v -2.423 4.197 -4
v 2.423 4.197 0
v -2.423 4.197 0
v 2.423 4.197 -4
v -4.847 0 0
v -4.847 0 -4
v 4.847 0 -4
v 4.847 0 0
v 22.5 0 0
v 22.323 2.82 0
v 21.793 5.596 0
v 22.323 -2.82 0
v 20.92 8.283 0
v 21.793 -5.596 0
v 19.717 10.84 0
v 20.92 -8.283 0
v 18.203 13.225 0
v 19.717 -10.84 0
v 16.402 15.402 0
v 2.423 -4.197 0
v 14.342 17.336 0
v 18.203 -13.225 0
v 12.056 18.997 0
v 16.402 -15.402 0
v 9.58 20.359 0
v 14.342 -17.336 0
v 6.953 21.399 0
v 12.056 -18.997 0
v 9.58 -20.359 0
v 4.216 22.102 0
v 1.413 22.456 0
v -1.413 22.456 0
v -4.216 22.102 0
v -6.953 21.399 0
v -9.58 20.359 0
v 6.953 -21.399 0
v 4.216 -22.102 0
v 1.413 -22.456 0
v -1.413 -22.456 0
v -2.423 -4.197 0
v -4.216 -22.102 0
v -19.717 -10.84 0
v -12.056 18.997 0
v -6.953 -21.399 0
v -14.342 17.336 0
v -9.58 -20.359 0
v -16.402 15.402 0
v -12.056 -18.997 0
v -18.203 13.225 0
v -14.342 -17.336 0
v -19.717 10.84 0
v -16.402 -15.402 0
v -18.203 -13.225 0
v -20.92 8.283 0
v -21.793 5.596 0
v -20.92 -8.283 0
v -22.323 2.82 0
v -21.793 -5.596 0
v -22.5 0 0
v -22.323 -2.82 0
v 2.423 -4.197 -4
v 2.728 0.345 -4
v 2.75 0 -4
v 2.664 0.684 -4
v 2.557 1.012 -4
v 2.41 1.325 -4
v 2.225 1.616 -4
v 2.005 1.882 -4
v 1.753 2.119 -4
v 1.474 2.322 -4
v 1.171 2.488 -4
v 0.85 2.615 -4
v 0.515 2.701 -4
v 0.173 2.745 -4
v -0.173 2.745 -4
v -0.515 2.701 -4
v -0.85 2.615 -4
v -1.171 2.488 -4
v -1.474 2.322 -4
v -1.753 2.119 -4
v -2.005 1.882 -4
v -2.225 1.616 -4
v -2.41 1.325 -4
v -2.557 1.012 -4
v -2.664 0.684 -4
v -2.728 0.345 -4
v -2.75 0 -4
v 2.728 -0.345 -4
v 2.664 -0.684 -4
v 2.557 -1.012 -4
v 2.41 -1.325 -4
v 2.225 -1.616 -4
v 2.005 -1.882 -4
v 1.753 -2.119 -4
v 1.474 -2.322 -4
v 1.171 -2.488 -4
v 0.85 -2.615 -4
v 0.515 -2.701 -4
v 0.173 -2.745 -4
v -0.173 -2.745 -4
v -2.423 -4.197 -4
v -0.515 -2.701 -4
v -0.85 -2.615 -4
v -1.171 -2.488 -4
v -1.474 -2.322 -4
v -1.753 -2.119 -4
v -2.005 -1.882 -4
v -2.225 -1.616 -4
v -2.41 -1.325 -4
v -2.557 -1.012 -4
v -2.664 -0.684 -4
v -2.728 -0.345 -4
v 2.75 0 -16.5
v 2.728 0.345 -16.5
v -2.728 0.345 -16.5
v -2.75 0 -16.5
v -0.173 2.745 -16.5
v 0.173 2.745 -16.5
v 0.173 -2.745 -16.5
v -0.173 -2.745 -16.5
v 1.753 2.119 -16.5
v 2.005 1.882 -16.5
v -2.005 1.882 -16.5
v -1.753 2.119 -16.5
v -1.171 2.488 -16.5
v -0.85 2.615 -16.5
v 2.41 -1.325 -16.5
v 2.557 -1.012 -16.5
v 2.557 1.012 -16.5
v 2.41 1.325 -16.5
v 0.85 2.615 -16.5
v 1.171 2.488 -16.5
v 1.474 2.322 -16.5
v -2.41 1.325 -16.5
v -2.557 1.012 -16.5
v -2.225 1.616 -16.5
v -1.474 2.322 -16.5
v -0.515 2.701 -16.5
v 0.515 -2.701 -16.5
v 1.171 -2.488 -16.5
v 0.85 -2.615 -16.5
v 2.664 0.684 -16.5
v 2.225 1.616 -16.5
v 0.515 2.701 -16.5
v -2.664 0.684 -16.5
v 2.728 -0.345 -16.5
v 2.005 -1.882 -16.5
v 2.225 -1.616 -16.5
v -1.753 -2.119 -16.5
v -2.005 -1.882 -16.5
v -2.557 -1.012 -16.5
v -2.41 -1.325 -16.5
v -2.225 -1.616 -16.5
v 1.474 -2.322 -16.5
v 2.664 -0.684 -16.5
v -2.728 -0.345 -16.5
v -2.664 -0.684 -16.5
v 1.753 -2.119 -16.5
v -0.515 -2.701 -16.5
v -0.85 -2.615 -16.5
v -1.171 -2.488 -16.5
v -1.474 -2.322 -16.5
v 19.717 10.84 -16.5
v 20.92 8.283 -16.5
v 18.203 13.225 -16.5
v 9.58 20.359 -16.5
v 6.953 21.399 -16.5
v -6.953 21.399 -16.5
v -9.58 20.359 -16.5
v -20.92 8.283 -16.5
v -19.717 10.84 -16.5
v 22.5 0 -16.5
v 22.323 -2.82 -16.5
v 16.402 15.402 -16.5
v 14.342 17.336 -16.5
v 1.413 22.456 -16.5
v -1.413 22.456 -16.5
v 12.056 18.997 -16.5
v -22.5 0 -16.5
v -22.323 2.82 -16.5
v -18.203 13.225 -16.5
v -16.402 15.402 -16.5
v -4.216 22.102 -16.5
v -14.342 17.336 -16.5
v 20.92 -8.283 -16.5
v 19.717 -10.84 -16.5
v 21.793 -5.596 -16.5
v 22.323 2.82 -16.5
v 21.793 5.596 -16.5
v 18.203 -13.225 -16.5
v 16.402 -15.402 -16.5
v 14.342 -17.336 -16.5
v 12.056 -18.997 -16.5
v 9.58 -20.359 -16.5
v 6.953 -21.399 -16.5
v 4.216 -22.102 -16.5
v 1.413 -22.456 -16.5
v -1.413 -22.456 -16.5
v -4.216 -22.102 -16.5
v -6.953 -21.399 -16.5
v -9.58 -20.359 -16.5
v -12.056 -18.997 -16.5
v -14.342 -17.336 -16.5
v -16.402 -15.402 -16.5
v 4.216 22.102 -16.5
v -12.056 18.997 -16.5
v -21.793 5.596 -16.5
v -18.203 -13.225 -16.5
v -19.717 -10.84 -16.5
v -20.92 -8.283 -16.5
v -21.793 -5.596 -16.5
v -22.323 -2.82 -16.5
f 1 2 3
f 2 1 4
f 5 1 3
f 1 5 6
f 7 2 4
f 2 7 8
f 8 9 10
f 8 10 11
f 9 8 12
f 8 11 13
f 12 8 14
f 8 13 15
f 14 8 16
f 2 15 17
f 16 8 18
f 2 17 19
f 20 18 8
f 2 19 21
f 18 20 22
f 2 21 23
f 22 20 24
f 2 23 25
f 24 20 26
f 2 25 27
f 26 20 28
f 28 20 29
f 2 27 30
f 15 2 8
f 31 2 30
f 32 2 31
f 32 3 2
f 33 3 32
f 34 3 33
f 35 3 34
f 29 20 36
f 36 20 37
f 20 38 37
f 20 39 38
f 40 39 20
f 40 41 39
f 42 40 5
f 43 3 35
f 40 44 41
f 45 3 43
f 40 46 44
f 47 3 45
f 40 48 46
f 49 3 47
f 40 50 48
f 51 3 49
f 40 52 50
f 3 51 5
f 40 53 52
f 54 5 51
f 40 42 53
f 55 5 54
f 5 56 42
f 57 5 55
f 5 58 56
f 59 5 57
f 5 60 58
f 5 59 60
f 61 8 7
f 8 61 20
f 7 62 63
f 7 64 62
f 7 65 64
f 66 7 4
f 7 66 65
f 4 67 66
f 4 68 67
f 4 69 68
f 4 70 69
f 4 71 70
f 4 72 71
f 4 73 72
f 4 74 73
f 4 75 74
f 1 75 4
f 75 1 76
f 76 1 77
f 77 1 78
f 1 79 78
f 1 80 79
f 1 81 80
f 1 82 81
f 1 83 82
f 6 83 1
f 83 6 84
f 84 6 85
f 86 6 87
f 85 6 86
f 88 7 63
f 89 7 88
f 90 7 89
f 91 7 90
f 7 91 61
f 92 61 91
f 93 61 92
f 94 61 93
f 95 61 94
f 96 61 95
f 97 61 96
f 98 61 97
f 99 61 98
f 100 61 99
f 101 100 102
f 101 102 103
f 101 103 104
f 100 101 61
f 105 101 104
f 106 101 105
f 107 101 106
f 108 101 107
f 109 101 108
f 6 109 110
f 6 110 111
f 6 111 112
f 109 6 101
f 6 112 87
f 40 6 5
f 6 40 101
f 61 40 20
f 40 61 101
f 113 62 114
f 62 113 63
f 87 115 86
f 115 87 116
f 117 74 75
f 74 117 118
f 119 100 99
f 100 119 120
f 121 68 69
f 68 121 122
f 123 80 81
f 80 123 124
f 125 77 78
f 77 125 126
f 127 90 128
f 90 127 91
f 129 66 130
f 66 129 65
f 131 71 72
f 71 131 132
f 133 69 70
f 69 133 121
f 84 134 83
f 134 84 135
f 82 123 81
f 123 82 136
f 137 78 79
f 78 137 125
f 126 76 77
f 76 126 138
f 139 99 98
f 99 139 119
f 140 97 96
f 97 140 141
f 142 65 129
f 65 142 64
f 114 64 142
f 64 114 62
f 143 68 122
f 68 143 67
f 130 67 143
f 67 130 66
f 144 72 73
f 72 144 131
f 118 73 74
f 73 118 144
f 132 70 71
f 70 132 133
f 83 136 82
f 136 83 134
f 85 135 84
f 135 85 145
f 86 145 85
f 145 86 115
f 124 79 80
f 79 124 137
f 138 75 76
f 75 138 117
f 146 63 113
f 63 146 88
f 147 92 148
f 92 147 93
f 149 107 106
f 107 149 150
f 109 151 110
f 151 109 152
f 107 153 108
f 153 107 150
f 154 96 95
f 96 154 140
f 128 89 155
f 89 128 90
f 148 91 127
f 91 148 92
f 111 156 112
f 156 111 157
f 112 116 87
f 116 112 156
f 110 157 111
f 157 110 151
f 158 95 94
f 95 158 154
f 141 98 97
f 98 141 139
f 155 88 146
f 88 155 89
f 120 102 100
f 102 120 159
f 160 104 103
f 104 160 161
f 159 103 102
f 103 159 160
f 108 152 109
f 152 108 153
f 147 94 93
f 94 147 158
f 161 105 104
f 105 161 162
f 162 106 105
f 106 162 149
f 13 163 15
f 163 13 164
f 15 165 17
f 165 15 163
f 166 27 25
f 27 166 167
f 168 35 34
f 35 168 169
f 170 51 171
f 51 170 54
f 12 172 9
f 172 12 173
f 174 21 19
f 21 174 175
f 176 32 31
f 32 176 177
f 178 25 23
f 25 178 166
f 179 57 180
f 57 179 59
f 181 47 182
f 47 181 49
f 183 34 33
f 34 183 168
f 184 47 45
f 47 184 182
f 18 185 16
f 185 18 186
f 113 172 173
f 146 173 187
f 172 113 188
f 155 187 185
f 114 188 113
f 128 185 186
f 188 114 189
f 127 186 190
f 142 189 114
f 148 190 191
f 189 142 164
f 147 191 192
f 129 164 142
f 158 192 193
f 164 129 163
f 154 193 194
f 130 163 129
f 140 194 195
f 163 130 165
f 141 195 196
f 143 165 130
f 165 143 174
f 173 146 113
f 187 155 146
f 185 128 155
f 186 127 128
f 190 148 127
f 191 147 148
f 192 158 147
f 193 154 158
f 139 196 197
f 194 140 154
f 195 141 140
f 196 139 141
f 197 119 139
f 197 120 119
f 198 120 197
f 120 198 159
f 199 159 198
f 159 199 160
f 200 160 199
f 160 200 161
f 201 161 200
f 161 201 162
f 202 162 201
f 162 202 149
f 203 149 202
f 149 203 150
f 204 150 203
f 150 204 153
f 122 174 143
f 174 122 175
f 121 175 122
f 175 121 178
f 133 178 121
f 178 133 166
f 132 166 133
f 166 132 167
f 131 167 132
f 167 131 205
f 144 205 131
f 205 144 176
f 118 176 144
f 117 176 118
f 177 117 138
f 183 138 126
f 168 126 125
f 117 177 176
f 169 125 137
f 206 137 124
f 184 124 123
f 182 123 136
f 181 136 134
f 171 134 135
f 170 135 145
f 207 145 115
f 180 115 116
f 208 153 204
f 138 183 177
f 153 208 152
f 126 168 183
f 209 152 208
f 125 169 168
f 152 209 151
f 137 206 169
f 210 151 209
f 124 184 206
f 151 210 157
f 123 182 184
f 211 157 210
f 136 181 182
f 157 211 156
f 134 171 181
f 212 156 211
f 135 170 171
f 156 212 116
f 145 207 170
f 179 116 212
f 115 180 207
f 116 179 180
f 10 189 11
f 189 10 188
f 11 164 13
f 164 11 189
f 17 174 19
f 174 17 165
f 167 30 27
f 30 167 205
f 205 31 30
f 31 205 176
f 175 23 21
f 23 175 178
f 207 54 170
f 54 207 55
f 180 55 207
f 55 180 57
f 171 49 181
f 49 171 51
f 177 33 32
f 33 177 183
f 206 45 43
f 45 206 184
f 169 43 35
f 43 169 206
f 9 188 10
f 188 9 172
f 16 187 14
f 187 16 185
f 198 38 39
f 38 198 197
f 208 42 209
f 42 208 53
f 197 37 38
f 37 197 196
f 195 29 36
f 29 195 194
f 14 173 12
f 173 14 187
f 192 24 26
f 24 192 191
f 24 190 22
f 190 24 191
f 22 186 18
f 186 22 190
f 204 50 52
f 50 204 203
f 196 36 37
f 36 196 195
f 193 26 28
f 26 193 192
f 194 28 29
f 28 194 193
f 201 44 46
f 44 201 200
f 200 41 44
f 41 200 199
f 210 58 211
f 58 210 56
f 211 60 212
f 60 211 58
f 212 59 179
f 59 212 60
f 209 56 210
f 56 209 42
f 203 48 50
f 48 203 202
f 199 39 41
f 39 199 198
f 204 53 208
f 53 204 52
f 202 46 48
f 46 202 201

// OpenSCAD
$fn = 50;


difference() {
	union() {
		translate(v = [0, 0, -16.5000000000]) {
			cylinder(h = 16.5000000000, r = 22.5000000000);
		}
	}
	union() {
		translate(v = [0, 0, 0]) {
			rotate(a = [0, 0, 0]) {
				difference() {
					union() {
						translate(v = [0, 0, -4]) {
							linear_extrude(height = 4) {
								polygon(points = [[4.8468000000, 0.0000000000], [2.4234000000, 4.1974519271], [-2.4234000000, 4.1974519271], [-4.8468000000, 0.0000000000], [-2.4234000000, -4.1974519271], [2.4234000000, -4.1974519271]]);
							}
						}
					}
					union();
				}
			}
		}
		#translate(v = [0, 0, -100.0000000000]) {
			cylinder(h = 200, r = 2.7500000000);
		}
	}
}
